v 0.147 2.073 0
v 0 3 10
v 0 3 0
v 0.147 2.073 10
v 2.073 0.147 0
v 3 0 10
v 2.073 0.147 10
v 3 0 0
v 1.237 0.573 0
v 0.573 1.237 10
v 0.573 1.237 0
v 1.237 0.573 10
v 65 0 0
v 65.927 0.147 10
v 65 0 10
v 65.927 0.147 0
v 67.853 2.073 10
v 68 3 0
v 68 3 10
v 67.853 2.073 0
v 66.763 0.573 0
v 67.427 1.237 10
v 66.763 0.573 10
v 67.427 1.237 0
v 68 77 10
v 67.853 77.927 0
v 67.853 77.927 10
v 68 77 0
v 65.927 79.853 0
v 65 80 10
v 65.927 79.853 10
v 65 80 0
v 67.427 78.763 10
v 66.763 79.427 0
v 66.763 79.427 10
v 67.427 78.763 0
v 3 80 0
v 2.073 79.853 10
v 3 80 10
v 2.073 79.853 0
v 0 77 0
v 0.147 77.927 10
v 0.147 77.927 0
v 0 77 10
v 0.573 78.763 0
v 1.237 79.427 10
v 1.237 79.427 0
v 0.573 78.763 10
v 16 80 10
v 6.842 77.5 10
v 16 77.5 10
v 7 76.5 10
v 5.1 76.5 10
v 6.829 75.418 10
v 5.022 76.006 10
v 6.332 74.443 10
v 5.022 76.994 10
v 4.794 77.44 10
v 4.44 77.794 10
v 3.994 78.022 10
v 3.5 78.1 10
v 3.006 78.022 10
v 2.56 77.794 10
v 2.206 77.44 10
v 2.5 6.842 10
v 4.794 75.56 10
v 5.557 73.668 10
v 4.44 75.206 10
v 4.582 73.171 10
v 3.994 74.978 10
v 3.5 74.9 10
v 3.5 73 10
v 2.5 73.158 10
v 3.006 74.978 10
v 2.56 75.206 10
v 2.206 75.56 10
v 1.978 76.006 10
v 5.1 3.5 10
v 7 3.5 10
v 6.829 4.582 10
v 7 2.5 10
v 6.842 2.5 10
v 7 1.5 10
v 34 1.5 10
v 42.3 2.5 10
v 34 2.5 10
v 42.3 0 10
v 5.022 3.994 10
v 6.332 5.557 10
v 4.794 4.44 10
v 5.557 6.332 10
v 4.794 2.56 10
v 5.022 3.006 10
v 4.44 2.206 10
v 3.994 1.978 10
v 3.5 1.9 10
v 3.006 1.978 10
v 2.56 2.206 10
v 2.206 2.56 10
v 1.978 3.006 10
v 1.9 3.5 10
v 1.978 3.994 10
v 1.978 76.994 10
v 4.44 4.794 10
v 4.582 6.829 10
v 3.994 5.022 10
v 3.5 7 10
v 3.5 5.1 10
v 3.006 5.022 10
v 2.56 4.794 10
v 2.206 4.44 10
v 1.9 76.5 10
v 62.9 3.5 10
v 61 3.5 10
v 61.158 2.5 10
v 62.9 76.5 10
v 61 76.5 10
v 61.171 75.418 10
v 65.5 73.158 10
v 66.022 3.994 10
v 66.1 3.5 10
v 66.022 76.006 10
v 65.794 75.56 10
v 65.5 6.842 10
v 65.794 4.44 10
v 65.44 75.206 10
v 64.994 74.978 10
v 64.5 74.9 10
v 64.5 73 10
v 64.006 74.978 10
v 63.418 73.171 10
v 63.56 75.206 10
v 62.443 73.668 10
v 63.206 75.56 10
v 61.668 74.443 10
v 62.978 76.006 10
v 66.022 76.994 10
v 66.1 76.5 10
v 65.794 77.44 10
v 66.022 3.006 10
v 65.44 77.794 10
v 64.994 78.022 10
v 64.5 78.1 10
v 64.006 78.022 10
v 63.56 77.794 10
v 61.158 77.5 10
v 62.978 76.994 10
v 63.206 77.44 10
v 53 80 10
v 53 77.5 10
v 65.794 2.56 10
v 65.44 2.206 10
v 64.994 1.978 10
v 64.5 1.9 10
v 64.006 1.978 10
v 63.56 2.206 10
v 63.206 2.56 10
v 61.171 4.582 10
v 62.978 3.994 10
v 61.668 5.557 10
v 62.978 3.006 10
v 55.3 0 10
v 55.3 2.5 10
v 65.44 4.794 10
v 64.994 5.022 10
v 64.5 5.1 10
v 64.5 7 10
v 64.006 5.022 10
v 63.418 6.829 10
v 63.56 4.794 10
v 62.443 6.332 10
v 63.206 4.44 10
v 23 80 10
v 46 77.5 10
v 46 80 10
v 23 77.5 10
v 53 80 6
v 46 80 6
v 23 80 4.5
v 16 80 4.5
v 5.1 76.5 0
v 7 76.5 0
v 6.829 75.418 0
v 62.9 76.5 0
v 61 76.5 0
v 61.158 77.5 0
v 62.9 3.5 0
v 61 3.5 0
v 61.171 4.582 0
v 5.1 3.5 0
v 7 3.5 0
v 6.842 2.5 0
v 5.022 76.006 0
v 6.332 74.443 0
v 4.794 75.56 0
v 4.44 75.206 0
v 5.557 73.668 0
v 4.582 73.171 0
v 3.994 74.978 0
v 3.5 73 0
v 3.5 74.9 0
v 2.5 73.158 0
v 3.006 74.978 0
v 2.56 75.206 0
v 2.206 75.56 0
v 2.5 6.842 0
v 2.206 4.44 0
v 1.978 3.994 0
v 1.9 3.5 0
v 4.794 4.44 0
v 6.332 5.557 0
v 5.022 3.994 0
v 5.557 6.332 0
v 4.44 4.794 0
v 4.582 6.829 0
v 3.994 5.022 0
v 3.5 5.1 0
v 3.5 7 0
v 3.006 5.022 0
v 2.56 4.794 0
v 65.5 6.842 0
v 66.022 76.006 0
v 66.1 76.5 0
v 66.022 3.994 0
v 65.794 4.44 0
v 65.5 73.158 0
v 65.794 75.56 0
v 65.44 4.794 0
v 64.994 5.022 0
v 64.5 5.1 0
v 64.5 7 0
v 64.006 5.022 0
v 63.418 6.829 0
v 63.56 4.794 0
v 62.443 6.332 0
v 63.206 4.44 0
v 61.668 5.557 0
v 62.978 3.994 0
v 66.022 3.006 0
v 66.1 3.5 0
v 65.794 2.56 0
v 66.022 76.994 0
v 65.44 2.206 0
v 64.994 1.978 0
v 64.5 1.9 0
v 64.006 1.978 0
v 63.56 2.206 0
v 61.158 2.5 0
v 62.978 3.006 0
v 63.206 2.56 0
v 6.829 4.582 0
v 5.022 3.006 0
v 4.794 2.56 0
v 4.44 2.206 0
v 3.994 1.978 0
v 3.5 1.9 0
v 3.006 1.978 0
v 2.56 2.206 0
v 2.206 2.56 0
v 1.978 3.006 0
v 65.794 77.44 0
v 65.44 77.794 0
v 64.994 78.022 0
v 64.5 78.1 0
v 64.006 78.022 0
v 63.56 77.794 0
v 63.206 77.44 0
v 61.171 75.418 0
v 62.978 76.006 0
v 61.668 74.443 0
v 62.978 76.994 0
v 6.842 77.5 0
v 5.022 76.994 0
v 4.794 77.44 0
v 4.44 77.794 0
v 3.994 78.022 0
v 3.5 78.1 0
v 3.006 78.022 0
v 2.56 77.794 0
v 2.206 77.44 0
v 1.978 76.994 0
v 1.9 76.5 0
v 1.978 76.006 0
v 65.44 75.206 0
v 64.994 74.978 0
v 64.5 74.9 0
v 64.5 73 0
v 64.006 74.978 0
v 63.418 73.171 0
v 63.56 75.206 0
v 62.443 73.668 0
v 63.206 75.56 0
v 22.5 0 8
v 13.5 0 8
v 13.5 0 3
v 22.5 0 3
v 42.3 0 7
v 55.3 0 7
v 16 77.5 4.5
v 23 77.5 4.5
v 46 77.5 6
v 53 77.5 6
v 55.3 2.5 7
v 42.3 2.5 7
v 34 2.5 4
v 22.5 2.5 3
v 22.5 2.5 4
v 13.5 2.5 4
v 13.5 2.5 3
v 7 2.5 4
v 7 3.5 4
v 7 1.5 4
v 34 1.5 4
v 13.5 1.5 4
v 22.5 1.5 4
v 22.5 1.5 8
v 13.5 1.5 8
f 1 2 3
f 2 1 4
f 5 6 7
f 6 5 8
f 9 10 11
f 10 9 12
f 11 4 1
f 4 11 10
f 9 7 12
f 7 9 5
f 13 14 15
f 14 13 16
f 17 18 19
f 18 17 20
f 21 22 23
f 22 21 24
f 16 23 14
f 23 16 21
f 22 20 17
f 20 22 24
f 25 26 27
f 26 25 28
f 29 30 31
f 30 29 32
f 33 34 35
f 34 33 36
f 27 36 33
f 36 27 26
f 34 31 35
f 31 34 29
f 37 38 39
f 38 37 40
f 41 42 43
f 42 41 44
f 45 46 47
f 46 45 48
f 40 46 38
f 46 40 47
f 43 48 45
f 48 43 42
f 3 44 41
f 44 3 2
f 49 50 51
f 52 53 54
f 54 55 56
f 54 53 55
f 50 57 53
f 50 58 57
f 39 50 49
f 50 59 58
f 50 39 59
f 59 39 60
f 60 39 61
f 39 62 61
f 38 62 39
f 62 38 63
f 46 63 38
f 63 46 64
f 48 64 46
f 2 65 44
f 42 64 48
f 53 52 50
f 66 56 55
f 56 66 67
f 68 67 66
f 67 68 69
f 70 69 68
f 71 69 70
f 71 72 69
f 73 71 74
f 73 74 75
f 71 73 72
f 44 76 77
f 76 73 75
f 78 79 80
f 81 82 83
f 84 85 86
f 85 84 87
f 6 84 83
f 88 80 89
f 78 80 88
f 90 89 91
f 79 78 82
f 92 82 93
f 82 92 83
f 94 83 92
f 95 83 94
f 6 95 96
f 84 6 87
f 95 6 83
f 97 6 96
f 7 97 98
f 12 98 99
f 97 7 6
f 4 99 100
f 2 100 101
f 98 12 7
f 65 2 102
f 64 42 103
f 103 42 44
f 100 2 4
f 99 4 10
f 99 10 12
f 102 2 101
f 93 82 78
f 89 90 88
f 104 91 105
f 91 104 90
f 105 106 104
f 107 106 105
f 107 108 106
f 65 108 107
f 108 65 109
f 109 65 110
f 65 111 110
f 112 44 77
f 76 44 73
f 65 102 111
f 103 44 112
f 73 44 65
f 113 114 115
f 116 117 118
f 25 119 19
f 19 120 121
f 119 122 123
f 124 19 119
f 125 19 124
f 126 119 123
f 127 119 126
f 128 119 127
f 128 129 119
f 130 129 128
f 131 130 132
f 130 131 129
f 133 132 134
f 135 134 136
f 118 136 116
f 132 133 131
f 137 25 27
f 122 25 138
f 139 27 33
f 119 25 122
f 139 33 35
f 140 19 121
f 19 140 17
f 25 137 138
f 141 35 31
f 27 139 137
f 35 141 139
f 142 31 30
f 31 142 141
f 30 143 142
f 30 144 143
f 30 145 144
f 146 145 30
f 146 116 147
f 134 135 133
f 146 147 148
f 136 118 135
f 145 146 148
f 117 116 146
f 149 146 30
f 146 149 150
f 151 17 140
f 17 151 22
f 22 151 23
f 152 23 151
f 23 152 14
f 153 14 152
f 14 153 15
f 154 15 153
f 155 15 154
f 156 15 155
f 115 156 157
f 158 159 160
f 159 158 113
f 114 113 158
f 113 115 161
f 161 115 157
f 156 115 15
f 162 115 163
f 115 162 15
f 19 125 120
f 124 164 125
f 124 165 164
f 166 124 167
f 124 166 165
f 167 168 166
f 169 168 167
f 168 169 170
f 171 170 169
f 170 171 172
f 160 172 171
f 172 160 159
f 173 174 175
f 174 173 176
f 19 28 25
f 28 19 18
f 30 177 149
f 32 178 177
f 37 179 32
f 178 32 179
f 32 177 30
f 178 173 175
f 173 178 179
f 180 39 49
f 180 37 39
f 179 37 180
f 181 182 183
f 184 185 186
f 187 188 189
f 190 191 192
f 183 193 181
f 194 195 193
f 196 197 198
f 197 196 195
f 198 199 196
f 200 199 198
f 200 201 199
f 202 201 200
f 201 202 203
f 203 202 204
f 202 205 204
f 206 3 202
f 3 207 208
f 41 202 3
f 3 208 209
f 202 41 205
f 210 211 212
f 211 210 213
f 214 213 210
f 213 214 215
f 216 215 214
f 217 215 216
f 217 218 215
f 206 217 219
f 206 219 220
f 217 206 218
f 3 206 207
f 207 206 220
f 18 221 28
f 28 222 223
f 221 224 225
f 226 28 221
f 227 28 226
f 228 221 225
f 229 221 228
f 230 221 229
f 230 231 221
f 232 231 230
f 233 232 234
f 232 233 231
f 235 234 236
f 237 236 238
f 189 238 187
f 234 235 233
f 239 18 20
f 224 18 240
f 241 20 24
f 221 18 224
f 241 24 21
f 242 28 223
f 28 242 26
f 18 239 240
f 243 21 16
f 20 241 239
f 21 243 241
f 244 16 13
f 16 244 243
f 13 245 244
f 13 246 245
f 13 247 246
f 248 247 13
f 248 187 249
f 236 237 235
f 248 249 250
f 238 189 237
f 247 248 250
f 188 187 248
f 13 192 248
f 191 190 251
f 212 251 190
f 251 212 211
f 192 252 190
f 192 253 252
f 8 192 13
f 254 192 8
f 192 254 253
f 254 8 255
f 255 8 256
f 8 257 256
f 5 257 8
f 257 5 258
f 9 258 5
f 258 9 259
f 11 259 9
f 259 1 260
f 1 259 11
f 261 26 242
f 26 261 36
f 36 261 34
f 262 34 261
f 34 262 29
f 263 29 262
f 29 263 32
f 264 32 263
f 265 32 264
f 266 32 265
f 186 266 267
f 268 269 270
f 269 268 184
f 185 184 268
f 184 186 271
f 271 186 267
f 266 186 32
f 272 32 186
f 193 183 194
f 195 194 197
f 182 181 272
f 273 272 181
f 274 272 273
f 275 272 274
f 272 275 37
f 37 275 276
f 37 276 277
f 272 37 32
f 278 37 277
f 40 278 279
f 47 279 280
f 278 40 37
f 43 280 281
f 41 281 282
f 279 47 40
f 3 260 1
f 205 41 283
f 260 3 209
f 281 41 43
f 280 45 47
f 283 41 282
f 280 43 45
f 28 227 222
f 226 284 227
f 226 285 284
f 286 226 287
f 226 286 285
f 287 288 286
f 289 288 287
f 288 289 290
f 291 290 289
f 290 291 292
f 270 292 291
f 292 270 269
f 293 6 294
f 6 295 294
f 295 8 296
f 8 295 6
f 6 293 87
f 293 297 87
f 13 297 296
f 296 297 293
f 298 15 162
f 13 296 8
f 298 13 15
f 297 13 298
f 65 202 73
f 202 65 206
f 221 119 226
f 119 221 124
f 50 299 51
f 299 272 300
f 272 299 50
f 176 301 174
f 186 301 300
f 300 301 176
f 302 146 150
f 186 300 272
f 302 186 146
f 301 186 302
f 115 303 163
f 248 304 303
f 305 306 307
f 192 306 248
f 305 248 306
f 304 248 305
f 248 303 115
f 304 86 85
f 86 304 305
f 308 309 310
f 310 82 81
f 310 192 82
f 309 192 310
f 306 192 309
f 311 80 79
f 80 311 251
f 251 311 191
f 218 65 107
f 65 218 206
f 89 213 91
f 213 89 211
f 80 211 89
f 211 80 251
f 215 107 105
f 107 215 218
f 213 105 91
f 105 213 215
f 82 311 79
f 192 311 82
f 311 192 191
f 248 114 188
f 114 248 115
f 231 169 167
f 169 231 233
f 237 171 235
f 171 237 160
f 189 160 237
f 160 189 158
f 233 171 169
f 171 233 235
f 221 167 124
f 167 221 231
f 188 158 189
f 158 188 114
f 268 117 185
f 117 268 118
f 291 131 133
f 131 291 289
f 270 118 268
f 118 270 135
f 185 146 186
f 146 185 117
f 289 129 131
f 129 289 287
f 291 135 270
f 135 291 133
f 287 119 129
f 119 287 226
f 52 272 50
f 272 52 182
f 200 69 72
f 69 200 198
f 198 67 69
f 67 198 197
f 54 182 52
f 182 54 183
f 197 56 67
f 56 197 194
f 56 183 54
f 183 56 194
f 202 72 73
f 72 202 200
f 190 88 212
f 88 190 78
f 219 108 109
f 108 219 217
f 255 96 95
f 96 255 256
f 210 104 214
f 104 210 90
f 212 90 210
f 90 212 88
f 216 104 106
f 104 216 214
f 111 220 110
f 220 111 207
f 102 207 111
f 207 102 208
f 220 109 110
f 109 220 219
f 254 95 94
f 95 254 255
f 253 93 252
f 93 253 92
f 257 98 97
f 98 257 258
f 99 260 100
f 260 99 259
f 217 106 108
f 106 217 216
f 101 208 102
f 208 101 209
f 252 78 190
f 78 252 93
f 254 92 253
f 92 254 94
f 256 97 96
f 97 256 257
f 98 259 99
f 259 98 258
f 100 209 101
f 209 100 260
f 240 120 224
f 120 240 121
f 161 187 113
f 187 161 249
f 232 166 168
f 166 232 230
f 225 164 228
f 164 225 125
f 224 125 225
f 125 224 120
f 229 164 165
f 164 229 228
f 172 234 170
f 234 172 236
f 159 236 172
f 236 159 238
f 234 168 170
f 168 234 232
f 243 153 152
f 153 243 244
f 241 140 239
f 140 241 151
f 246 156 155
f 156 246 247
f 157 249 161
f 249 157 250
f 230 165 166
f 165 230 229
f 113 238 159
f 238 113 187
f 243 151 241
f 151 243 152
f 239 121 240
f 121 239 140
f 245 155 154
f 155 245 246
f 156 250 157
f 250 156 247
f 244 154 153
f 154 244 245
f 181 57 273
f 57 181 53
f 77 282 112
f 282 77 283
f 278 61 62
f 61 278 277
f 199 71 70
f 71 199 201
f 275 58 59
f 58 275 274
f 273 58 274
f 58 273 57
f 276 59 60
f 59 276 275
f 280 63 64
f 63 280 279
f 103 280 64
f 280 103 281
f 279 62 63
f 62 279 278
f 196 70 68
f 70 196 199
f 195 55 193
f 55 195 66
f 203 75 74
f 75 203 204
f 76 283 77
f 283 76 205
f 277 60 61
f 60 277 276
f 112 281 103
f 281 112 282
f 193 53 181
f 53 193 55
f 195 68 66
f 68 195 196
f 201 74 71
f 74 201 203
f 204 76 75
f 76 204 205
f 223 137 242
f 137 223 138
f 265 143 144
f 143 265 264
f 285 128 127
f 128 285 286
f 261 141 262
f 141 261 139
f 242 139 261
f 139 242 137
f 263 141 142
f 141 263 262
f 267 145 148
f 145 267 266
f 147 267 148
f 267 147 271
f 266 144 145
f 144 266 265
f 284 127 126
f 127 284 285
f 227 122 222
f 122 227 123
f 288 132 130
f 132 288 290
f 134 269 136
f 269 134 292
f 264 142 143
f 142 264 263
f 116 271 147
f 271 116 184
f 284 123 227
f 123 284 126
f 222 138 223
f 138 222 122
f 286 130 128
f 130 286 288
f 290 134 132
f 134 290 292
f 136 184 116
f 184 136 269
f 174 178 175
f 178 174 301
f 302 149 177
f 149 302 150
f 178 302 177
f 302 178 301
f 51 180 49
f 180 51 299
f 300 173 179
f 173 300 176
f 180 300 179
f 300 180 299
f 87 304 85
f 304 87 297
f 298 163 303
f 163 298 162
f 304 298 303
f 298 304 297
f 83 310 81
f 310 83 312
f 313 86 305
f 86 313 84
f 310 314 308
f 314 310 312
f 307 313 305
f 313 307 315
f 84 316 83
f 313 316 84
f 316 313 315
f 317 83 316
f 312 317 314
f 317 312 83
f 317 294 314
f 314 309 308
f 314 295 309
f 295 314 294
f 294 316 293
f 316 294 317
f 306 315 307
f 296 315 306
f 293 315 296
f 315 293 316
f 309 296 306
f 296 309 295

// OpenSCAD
// file: _params.scad
$fn = 20;

w = 68;
h = 80;

// tloušťka stěny
t = 2.5;

// od opačné strany než počátek
antenna_x = 18.5; 
antenna_w = 7;
antenna_h = 5;
// file: _parts.scad
use <_utils.scad>
include <_params.scad>

module panel() {
  
    
   difference() {
       
    union() {
      // plášť
     difference() {
        cube([w, h, 2]);
        
        union() {
          rounderer(0,0,180);  
          rounderer(w,0,-90);  
          rounderer(w,h,0);  
          rounderer(0,h,90);  
        }
        
        // ukos
        translate([0,0,1]){
          union() {
            trimmer(12, 0);
            translate([w,0,0]) trimmer(12, 90);
            translate([w,h,0]) trimmer(12, 180);
            translate([0,h,0]) trimmer(12, -90);
          }
        }
        
        // zapuštění pro šrouby
        translate([0,0,1]){
          translate([3.5,3.5,0]) cylinder(10, 3.5, 3.5, false);
          translate([w-3.5,3.5,0]) cylinder(10, 3.5, 3.5, false);
          translate([w-3.5,h-3.5,0]) cylinder(10, 3.5, 3.5, false);
          translate([3.5,h-3.5,0]) cylinder(10, 3.5, 3.5, false);
        }
      }
    }
    
    // vrtani
    translate([3.5,3.5,0]) cylinder(10, 3.2/2, 3.2/2, false);
    translate([w-3.5,3.5,0]) cylinder(10, 3.2/2, 3.2/2, false);
    translate([3.5,h-3.5,0]) cylinder(10, 3.2/2, 3.2/2, false);
    translate([w-3.5,h-3.5,0]) cylinder(10, 3.2/2, 3.2/2, false);
    
  }
  
}



module housing(d) {
  
   difference() {
       
    union() {
      // plášť
     difference() {
        cube([w, h, d]);
        
        union() {
          rounderer(0,0,180);  
          rounderer(w,0,-90);  
          rounderer(w,h,0);  
          rounderer(0,h,90);  
        }
        
        translate([t,t,0])
          cube([w-2*t, h-2*t, d]);
      }

      // domečky pro šrouby
      translate([3.5,3.5,0]) cylinder(d, 3.5, 3.5, false);
      translate([w-3.5,3.5,0]) cylinder(d, 3.5, 3.5, false);
      translate([w-3.5,h-3.5,0]) cylinder(d, 3.5, 3.5, false);
      translate([3.5,h-3.5,0]) cylinder(d, 3.5, 3.5, false);
    }
    
    // vrtani
    translate([3.5,3.5,0]) cylinder(d, 3.2/2, 3.2/2, false);
    translate([w-3.5,3.5,0]) cylinder(d, 3.2/2, 3.2/2, false);
    translate([3.5,h-3.5,0]) cylinder(d, 3.2/2, 3.2/2, false);
    translate([w-3.5,h-3.5,0]) cylinder(d, 3.2/2, 3.2/2, false);
    
  }

}
// file: _utils.scad
module rounderer(x, y, rot, r = 3) {
  //r = 3;
  l = 20;
  
  translate([x, y, 0]) {
    rotate([0, 0, rot]){
      translate([-r, -r, -l]) {
        difference() {
          cube([2*r, 2*r, 2*l]);
          cylinder(2*l, r, r, false);
        }
      }
    }
  }
}



module trimmer(a, rot) {
  
  l = 200;
  
  rotate([a,0, rot])
    translate([-l/2, -l/2, 0])
      cube([l, l, 10]);
  
  
}



trimmer(10, 90);
// main file
use <_utils.scad>
use <_parts.scad>

include <_params.scad>

module btm_housing() {
  
  difference() {
    housing(10);
    
    // antenna
    translate([w - antenna_x, h, -antenna_h/2 + antenna_h + 10 - 4])
      cube([antenna_w, 10, antenna_h], true);
    
    // switch
    translate([19.5, h, 10 - 5.5 + 5.5/2])
      cube([7, 10, 5.5], true);
    
    // connector
    translate([w - 19.2, 0, 10 - 3 + 3/2])
      cube([13, 10, 3], true);
    
    
    // wemos cutout
    translate([7 + 27/2, 10/2 + 1.5, 10 - 6 + 6/2])
      cube([27, 10, 6], true);
    
    // USB connector
    translate([18, 0, 5/2 + 10 - 5 - 2])
      cube([9, 10, 5], true);    
  }
}

btm_housing();


   
